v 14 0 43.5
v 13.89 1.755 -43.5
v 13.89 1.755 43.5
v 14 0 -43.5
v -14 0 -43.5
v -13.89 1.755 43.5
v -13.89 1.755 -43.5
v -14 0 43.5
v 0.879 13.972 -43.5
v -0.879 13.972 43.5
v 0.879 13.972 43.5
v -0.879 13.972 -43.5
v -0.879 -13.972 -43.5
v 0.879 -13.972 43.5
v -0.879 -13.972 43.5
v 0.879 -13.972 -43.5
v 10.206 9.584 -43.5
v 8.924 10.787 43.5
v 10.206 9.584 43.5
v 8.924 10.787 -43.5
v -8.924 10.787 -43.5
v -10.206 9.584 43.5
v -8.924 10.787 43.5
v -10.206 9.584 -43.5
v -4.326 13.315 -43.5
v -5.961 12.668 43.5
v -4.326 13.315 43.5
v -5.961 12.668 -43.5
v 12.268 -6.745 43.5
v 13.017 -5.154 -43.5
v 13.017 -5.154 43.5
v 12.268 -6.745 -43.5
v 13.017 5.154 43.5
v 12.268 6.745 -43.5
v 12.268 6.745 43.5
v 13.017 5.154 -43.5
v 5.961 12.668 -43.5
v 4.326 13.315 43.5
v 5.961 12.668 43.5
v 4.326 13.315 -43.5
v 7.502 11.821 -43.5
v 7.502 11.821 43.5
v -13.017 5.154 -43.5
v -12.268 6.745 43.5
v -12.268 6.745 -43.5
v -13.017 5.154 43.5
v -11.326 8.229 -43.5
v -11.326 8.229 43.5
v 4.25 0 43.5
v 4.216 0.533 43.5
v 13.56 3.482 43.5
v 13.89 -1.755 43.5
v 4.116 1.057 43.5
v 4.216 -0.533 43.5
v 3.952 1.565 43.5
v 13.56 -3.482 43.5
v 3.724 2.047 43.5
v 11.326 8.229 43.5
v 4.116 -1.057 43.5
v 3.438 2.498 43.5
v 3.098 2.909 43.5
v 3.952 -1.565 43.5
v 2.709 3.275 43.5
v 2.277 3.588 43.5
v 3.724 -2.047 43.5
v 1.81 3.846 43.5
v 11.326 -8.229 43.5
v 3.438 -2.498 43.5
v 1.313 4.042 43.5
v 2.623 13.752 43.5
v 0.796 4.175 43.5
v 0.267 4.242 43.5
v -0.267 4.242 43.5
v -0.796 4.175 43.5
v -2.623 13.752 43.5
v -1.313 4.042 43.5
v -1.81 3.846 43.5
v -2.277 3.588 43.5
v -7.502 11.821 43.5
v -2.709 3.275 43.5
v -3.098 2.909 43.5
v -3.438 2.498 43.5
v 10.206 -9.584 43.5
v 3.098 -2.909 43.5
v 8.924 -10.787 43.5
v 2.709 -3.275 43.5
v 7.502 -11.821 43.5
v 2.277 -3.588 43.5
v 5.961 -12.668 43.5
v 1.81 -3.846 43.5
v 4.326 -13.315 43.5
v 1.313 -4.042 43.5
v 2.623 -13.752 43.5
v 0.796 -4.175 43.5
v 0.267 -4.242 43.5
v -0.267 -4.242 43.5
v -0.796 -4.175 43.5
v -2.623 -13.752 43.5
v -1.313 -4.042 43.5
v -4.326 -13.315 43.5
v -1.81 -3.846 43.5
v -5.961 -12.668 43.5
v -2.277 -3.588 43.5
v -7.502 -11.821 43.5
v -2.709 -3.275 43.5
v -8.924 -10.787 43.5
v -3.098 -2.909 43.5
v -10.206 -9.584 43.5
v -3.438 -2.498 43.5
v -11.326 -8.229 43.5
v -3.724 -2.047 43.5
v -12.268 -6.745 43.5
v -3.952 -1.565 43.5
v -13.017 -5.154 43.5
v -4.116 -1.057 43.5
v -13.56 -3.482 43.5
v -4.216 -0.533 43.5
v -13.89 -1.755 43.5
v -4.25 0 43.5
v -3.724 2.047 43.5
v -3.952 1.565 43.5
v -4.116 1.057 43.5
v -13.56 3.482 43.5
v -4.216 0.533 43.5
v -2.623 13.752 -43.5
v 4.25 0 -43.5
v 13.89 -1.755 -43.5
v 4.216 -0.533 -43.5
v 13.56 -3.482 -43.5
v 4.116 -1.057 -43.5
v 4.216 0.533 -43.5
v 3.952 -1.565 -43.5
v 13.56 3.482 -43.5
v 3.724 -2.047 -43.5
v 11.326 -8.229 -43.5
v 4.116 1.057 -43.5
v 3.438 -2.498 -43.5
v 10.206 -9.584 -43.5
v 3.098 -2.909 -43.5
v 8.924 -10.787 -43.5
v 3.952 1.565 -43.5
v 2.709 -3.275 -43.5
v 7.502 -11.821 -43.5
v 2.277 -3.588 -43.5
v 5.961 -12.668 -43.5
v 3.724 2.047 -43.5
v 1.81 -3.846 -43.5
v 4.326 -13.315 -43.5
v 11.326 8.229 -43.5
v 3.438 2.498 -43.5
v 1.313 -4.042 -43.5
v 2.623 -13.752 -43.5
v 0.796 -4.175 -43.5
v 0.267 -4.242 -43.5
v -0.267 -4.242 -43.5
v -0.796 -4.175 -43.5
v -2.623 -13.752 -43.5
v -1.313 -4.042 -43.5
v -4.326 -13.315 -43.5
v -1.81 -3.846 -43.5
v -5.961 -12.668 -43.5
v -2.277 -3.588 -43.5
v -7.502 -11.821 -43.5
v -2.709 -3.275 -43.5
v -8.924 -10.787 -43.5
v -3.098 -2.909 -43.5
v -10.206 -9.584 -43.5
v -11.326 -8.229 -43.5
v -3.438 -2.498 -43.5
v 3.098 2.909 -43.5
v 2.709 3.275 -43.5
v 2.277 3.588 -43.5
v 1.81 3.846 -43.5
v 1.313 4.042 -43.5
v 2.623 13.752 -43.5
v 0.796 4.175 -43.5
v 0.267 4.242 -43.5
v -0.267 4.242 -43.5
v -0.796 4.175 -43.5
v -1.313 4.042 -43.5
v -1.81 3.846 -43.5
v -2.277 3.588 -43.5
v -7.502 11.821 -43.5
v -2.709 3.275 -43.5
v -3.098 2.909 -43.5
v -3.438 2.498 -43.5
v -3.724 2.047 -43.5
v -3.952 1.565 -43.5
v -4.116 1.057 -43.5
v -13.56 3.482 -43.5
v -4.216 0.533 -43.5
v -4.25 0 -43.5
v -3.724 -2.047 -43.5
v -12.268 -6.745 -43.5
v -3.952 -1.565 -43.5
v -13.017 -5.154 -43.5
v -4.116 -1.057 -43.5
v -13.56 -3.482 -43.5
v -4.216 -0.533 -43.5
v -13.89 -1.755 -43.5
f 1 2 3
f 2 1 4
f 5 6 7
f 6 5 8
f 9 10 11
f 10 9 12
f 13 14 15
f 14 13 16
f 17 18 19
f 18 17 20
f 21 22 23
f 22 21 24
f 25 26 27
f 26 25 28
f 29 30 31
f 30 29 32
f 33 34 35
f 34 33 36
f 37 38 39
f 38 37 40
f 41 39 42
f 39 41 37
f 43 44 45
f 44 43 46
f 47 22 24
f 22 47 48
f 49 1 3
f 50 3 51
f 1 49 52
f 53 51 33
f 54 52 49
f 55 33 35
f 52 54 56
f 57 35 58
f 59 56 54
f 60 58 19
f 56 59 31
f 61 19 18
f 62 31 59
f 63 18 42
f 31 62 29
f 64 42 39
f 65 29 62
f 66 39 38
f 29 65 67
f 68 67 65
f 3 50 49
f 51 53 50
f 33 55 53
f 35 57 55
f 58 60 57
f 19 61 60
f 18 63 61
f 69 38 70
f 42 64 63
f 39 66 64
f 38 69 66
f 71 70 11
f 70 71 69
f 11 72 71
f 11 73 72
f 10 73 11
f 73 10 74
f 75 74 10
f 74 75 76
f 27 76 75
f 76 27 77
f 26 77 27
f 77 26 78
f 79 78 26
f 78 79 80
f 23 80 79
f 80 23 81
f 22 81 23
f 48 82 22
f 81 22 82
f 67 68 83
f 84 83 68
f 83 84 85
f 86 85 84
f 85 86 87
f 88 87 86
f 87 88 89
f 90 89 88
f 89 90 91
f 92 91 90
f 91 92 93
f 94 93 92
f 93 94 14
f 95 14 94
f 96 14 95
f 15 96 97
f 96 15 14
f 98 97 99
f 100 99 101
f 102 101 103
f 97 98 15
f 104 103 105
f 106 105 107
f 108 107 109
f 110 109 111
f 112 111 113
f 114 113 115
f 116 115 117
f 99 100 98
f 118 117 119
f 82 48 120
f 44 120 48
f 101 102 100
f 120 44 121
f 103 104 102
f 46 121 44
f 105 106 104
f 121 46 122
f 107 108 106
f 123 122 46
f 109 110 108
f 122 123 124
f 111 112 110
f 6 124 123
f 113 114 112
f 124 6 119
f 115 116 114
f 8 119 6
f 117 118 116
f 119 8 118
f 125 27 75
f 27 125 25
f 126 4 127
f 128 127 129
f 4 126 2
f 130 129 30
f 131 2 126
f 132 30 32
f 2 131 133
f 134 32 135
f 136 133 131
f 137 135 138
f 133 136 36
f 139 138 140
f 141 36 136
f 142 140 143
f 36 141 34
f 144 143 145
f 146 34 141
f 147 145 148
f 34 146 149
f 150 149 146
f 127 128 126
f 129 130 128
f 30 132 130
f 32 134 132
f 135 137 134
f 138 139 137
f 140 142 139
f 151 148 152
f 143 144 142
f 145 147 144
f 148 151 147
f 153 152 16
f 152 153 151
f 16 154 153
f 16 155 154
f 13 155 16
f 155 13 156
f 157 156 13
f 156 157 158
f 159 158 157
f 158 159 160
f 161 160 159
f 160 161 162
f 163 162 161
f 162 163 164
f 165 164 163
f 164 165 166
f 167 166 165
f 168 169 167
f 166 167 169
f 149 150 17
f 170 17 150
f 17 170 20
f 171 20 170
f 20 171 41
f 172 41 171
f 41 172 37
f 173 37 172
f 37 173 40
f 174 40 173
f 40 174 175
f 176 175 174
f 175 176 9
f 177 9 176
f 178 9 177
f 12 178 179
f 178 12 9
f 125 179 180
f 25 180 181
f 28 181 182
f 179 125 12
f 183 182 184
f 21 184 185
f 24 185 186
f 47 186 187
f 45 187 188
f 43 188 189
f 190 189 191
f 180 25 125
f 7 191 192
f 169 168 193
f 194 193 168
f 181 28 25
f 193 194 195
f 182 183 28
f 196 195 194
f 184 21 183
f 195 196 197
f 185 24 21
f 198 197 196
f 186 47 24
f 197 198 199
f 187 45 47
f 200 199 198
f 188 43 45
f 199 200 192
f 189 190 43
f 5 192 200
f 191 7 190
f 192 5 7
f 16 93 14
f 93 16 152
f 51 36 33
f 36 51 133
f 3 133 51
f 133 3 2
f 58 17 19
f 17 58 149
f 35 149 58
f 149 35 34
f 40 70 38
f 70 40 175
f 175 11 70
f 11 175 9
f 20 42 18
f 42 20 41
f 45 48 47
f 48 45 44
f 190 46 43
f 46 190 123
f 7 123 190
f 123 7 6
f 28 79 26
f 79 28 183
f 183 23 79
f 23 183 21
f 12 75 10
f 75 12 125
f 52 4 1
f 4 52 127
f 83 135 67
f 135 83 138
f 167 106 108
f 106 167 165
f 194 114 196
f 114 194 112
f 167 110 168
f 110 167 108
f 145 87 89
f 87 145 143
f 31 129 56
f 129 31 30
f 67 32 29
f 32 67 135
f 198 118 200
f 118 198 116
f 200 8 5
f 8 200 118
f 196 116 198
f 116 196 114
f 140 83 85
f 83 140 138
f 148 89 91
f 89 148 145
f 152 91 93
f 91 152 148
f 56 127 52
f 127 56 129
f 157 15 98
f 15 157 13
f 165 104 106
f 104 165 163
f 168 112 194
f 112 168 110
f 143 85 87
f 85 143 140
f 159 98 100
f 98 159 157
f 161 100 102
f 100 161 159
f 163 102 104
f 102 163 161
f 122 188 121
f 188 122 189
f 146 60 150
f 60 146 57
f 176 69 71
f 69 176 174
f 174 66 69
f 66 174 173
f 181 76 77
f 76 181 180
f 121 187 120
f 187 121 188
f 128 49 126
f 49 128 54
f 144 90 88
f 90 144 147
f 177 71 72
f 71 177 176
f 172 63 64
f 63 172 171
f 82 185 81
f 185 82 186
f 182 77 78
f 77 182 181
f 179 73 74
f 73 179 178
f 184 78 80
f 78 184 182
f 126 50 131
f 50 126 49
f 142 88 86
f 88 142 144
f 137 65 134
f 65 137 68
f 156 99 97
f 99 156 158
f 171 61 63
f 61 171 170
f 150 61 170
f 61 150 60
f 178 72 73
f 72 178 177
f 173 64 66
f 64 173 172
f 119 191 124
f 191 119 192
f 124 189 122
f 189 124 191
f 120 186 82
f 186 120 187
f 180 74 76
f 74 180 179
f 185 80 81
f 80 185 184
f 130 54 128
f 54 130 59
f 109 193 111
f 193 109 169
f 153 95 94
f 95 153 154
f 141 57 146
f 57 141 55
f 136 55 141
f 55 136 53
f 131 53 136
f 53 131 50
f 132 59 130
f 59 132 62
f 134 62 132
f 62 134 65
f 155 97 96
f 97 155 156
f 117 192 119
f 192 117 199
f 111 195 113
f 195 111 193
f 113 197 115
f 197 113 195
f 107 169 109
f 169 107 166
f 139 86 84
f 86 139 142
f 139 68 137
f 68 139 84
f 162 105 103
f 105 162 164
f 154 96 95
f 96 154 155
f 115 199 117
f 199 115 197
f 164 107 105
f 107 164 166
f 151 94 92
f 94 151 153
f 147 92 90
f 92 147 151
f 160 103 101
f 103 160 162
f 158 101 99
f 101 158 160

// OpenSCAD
$fn = 50;


difference() {
	union() {
		translate(v = [0, 0, -43.5000000000]) {
			cylinder(h = 87, r = 14.0000000000);
		}
	}
	union() {
		translate(v = [0, 0, -100.0000000000]) {
			cylinder(h = 200, r = 4.2500000000);
		}
	}
}
